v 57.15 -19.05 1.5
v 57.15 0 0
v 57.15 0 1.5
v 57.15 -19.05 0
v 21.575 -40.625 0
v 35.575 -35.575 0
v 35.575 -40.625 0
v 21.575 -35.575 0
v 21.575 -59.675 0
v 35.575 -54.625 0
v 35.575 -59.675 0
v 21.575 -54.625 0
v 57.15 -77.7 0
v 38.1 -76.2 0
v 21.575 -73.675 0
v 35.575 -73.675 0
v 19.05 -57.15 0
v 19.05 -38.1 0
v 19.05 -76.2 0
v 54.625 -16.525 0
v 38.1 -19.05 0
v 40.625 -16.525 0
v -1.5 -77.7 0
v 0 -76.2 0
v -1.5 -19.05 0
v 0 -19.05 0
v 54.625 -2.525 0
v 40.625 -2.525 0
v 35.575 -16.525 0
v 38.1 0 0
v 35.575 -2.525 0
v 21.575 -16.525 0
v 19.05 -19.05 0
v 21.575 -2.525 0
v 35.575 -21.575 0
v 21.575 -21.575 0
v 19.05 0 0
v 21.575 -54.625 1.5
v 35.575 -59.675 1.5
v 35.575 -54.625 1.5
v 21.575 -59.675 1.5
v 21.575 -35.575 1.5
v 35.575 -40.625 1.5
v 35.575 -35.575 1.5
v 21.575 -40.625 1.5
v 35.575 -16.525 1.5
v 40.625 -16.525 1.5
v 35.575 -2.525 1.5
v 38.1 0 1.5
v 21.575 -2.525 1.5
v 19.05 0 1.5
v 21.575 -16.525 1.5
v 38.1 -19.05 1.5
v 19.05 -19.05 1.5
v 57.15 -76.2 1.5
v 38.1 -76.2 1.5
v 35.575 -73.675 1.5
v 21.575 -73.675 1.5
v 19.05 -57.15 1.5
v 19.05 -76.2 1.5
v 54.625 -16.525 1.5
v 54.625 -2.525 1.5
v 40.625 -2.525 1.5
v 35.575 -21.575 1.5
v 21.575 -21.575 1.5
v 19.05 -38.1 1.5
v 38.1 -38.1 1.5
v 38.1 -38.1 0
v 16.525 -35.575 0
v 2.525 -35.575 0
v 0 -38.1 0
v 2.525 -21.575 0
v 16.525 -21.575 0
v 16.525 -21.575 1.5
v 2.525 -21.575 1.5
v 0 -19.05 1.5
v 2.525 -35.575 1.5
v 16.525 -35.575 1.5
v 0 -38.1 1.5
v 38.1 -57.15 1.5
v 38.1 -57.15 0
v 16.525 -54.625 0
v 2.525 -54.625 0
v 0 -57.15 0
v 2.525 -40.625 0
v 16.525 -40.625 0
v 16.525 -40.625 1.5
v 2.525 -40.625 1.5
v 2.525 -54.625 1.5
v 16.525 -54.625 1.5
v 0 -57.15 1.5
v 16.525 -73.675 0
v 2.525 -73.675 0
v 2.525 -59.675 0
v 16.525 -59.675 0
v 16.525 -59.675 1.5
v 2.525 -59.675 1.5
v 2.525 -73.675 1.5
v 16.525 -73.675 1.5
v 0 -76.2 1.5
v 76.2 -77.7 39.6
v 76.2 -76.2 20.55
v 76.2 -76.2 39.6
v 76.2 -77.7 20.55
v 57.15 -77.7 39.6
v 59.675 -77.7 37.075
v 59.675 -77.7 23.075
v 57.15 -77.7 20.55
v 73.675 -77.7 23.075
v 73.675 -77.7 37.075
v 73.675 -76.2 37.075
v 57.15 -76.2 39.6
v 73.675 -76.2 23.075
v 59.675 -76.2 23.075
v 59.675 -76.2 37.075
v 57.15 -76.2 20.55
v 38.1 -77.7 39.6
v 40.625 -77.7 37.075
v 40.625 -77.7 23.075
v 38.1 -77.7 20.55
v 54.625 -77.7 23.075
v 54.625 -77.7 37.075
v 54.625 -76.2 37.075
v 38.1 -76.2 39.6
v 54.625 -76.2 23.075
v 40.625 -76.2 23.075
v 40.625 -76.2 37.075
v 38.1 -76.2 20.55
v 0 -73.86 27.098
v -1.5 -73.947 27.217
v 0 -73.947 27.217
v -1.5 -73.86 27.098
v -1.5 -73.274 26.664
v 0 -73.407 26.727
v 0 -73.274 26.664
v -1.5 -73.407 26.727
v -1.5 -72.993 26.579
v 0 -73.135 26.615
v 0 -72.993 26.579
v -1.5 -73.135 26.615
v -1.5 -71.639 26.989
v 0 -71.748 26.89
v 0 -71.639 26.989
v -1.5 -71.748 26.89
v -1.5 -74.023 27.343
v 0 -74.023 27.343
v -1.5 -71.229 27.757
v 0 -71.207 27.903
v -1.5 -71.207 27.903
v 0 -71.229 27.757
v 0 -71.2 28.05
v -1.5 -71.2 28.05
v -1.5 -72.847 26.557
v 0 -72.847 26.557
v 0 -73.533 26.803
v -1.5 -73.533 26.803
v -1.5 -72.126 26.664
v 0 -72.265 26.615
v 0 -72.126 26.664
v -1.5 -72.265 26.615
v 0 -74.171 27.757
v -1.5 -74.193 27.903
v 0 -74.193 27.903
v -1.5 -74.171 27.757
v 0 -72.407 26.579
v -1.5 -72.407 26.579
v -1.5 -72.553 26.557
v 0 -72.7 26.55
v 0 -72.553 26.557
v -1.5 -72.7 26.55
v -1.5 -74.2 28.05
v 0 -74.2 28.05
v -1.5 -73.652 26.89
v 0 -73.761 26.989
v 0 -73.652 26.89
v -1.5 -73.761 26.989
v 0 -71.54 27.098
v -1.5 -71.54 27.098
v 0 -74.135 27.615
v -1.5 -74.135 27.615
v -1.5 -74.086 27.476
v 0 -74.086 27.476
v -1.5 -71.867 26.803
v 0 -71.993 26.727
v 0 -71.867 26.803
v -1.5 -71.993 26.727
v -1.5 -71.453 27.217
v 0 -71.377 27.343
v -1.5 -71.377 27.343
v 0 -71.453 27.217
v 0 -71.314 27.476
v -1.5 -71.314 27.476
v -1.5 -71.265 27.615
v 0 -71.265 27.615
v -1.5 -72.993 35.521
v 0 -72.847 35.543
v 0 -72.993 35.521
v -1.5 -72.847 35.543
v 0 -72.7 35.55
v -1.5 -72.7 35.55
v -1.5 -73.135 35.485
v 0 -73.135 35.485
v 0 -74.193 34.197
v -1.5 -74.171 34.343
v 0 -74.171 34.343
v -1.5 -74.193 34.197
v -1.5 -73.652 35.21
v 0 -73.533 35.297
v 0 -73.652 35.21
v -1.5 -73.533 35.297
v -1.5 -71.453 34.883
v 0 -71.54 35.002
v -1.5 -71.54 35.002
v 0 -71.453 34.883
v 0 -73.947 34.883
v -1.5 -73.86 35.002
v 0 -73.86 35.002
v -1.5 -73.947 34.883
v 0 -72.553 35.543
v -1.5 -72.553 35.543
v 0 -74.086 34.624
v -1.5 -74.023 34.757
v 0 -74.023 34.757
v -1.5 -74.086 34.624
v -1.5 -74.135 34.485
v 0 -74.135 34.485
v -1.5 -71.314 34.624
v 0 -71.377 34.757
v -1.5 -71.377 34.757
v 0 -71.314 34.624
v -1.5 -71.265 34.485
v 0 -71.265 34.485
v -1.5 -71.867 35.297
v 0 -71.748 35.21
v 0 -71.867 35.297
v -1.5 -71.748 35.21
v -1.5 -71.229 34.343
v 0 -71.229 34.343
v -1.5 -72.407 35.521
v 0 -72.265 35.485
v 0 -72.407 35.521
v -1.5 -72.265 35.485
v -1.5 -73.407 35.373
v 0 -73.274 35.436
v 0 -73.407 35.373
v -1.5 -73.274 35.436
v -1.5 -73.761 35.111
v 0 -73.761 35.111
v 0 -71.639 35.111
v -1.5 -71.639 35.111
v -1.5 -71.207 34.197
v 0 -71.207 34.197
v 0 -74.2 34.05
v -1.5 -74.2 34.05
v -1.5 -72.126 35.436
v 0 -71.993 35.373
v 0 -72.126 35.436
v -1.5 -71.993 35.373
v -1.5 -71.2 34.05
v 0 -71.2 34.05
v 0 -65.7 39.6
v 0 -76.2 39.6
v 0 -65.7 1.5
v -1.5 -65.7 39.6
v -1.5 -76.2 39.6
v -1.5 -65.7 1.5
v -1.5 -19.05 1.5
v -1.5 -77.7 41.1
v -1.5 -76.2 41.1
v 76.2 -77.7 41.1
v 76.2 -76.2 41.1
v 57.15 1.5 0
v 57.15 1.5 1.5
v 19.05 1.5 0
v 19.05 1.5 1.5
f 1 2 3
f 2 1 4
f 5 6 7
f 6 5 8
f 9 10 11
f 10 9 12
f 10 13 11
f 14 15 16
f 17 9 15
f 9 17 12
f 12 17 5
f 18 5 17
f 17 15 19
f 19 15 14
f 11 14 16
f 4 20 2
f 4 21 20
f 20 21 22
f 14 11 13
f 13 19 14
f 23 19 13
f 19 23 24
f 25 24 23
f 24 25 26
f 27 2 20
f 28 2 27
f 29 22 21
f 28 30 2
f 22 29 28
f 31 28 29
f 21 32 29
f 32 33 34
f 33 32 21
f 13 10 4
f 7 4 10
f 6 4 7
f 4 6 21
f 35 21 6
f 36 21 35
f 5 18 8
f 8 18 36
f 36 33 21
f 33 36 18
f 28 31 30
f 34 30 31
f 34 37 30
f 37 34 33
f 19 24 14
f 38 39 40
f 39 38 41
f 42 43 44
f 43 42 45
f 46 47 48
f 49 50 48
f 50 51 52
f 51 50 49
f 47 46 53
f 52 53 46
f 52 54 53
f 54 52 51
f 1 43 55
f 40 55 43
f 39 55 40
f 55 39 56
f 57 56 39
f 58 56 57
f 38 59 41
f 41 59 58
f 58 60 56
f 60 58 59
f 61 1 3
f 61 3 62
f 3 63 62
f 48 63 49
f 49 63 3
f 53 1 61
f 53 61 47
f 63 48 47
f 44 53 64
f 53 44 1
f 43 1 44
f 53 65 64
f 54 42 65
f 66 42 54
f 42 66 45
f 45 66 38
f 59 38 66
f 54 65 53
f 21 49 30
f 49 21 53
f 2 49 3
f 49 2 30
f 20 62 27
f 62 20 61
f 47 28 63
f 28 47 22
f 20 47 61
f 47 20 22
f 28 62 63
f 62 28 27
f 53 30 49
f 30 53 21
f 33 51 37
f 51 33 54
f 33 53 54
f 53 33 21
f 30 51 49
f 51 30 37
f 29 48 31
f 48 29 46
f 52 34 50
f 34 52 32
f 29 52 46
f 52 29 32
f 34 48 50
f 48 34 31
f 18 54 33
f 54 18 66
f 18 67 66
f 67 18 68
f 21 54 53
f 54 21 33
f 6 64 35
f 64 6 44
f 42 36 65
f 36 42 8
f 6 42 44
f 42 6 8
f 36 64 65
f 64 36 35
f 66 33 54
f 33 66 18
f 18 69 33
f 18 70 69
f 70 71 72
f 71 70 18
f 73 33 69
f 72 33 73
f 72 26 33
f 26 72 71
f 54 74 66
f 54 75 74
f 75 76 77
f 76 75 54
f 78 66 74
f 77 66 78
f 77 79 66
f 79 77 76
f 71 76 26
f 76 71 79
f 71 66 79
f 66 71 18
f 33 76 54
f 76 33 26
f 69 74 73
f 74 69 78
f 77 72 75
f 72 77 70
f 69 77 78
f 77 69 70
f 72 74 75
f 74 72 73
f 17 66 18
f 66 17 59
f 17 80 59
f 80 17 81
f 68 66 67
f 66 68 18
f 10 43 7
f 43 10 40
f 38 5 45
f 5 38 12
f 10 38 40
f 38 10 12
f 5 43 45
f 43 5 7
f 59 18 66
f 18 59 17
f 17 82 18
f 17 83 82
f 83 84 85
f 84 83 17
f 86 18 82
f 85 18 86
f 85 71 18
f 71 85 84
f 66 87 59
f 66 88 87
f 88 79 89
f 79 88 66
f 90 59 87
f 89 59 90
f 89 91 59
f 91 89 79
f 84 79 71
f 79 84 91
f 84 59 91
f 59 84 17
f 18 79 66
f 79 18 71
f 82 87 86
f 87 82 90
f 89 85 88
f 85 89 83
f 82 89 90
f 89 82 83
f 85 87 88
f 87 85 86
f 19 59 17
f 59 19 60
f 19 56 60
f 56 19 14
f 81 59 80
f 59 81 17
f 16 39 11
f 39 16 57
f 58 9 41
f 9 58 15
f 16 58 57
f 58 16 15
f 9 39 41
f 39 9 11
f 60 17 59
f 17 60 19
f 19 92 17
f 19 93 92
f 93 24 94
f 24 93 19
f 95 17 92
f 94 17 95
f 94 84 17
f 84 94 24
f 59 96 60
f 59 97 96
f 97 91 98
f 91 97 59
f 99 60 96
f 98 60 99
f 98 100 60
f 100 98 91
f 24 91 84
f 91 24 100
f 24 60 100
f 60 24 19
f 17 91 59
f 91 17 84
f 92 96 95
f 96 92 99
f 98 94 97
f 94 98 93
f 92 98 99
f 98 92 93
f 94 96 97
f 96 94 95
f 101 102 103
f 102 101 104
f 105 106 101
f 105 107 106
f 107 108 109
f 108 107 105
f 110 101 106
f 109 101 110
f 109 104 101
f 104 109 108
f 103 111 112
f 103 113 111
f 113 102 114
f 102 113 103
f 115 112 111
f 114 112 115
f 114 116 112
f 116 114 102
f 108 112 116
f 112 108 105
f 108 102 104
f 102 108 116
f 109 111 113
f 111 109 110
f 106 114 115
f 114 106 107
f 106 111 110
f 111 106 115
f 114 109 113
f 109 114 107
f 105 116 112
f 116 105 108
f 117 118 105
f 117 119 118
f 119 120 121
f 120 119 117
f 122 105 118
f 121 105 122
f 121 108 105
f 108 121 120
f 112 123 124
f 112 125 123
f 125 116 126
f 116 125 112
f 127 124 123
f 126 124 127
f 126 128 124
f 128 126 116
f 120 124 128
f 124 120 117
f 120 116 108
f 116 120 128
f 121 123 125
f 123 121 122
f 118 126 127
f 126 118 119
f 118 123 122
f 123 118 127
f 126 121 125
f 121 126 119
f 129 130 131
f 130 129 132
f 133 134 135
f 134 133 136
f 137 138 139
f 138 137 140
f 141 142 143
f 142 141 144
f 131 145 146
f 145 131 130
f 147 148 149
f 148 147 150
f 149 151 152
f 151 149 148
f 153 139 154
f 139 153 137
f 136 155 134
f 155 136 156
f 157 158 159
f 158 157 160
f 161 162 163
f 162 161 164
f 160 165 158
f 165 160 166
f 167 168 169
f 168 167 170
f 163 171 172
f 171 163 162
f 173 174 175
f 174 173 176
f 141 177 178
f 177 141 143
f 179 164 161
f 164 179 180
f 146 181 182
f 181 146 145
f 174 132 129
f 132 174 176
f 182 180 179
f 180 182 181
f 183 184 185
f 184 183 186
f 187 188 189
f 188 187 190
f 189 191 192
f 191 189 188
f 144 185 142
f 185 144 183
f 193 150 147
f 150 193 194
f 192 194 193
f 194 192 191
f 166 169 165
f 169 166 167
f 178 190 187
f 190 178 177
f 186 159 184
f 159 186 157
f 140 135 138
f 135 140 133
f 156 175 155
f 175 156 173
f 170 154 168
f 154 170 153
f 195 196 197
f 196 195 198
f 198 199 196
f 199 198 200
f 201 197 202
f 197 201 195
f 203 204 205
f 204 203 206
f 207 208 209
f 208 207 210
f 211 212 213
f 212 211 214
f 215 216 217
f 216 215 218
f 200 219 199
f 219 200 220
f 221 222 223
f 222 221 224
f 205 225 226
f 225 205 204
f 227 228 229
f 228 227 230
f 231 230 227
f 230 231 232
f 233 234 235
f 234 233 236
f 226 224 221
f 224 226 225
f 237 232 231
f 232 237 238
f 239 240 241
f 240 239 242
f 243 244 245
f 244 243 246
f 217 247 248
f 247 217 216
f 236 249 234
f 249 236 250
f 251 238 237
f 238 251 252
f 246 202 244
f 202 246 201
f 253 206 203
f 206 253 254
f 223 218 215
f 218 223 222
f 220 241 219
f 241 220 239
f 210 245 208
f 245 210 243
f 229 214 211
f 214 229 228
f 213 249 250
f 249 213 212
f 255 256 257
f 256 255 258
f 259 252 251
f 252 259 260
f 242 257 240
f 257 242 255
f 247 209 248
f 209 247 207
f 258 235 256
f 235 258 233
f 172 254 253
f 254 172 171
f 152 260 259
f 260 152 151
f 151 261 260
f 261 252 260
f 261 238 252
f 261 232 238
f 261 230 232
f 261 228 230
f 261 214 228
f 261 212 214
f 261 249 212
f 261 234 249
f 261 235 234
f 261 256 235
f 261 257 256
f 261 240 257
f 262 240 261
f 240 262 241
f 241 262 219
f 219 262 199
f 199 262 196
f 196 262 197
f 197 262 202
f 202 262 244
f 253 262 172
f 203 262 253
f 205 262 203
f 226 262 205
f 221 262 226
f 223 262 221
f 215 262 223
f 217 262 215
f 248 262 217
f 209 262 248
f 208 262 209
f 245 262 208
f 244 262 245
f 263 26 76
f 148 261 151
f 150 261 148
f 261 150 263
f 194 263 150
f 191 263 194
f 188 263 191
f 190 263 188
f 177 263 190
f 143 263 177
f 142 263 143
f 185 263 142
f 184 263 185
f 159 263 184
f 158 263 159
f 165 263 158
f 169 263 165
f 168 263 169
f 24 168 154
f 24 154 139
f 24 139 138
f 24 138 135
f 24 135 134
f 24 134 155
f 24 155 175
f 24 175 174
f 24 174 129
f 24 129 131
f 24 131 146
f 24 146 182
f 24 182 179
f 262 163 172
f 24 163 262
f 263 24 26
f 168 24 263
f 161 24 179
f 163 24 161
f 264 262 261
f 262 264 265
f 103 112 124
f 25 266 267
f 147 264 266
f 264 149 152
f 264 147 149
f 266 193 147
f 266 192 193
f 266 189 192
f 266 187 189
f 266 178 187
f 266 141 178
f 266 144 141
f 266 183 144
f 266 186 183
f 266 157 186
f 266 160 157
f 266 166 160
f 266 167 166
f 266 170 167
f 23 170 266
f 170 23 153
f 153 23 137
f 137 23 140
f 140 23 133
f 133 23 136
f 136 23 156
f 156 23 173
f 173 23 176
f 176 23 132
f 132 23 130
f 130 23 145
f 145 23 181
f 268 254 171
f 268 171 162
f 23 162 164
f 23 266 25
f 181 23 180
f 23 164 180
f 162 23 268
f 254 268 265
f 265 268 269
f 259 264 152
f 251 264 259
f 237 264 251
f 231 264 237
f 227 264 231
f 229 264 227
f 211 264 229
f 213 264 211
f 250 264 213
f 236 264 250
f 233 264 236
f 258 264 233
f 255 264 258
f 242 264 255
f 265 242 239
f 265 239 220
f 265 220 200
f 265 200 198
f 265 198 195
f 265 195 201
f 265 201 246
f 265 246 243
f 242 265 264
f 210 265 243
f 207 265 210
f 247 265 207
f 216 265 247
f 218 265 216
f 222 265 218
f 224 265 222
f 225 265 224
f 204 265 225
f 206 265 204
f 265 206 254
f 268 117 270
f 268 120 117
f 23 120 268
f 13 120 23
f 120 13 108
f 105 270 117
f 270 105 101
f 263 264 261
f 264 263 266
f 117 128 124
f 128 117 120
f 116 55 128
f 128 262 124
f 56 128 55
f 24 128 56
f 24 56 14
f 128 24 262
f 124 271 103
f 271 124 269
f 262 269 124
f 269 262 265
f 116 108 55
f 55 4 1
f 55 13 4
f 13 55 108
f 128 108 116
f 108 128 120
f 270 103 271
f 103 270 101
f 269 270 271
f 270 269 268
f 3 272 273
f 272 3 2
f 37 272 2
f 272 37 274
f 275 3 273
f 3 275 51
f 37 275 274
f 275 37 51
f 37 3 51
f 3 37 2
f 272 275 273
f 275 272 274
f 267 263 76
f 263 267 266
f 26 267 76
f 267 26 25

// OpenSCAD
// STL output file loading just the top from Body.scad

include <Complete.scad>

translate([0, 0, thickness])
  rotate([180, 0, 0])
  top_piece();
